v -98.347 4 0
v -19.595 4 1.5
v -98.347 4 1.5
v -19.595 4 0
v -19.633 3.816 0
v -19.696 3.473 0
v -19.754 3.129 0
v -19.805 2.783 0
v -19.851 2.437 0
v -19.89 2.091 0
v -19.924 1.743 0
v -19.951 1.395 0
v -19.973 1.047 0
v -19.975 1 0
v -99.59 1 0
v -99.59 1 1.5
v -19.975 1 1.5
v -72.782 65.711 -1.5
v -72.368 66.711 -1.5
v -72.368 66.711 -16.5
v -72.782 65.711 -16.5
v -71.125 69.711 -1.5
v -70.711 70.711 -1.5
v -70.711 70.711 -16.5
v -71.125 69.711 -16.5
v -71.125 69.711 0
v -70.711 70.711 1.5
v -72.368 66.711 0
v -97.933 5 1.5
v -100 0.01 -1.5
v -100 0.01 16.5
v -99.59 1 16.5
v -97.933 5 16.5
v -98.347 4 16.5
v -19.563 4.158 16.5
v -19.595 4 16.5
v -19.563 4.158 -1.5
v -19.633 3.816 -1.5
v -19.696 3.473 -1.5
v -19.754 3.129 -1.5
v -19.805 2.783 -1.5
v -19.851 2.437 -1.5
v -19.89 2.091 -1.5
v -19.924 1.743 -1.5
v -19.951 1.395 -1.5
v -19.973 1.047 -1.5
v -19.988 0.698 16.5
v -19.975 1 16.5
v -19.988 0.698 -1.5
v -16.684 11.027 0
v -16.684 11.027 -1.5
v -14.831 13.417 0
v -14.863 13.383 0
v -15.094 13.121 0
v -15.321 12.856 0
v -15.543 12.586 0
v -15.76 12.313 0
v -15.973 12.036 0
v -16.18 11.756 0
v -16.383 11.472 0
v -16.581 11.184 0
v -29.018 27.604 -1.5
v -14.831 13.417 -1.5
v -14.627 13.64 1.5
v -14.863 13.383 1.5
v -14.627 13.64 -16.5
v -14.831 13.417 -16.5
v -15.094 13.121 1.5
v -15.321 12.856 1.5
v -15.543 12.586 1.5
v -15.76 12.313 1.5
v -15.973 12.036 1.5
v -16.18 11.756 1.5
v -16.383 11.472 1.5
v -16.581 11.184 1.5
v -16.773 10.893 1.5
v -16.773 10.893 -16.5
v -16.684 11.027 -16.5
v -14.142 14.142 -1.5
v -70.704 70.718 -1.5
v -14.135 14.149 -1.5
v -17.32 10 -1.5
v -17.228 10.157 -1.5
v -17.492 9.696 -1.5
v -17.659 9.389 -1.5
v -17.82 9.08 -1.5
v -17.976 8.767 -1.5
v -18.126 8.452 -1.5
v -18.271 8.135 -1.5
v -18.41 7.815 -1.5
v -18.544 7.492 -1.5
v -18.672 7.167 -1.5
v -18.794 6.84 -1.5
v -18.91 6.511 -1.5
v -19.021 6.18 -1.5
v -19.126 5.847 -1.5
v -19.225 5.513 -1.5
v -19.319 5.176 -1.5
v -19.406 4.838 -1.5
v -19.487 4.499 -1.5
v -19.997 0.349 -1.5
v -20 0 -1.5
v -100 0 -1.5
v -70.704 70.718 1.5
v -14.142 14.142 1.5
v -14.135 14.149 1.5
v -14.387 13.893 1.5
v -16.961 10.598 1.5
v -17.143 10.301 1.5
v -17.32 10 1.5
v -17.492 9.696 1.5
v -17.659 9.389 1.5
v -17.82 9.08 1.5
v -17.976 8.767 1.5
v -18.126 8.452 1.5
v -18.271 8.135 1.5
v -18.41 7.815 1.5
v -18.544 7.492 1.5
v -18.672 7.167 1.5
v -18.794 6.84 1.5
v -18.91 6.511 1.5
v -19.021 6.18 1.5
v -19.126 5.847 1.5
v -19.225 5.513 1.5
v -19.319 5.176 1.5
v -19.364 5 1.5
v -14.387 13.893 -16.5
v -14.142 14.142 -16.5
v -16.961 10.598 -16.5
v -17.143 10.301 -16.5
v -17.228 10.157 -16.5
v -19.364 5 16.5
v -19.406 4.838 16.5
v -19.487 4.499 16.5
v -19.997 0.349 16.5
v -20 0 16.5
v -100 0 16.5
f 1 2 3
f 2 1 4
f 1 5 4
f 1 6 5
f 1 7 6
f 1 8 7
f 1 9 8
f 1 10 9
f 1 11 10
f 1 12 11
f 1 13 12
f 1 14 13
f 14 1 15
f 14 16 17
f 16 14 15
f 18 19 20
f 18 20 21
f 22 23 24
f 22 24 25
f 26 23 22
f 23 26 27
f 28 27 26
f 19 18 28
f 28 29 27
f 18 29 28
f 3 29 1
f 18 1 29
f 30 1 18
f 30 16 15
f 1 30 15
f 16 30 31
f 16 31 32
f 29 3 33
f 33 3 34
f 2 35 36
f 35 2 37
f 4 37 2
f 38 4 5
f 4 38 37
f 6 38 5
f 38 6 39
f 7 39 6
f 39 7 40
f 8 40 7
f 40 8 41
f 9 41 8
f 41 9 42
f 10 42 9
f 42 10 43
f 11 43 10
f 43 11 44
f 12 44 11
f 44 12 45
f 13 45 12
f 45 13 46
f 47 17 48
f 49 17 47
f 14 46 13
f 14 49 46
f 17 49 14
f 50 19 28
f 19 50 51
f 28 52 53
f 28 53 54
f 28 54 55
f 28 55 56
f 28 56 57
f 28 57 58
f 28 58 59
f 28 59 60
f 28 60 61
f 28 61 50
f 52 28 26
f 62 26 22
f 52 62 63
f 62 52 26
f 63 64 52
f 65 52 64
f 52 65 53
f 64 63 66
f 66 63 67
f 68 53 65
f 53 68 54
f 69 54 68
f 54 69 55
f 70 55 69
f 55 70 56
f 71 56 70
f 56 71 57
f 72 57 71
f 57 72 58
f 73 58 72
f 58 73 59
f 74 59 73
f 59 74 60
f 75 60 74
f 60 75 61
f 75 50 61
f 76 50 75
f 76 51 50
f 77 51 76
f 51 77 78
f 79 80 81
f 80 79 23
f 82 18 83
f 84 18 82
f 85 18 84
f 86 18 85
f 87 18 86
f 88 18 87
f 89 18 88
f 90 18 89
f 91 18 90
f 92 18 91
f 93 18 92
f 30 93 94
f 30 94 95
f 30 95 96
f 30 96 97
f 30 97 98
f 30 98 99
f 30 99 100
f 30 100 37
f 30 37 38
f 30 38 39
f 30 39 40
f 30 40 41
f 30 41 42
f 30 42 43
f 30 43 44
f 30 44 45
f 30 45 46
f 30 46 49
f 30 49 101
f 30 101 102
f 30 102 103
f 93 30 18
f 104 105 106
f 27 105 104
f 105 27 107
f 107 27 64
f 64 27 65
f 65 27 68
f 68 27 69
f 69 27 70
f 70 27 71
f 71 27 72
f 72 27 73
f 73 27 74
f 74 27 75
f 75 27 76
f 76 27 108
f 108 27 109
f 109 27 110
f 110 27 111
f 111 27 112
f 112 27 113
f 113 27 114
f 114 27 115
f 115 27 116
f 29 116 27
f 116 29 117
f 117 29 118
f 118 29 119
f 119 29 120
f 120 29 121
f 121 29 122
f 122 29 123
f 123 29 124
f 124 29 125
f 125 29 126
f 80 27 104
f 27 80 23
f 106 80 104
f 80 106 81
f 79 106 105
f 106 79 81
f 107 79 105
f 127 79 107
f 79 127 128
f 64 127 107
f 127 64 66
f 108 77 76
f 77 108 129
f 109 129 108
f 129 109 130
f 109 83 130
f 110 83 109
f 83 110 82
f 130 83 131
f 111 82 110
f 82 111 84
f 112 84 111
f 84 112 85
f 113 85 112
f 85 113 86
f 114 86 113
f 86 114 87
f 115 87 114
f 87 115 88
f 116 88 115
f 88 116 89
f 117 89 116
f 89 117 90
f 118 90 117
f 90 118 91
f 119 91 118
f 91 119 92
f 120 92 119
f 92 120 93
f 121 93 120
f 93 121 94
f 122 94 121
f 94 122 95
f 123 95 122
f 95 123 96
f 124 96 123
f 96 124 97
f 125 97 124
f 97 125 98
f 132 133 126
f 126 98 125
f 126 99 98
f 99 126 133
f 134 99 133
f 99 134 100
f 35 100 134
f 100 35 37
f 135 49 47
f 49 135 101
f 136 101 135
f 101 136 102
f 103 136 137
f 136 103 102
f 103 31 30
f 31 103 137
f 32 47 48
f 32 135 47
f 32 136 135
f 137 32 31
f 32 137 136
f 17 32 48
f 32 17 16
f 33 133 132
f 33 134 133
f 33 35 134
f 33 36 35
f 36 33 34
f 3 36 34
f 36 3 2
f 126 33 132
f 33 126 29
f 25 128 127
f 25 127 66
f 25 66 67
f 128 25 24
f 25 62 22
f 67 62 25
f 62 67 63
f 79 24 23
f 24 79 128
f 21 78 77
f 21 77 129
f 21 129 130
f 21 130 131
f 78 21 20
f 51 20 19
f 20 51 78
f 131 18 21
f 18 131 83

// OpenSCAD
// file: wall.scad
$fa = 1;
$fs = 0.1;

OPENING_ANGLE = 45;
HEIGHT = 100;
GRIP_SIZE = 15;
THICKNESS = 3;
CARDBOARD_THICKNESS = 3;

wall();

module wall() {
  difference() {
    translate([0, 0, -THICKNESS/2])
    linear_extrude(THICKNESS)
    side();

    each_edge() {
      knockout();
    }
  }

  each_edge() {
    grip();
  }
}

module side() {
  difference() {
    hull() {
      square([HEIGHT, 0.01]);

      rotate(OPENING_ANGLE)
      square([HEIGHT, 0.01]);
    }

    circle(r=HEIGHT/5);
  }
}

module grip() {
  translate([0, 0, THICKNESS/2])
  union() {
    cube([HEIGHT, 1, GRIP_SIZE]);

    translate([0, CARDBOARD_THICKNESS+1, 0])
    cube([HEIGHT, 1, GRIP_SIZE]);
  }
}

module knockout() {
  translate([0, 1, 0])
  cube([HEIGHT, CARDBOARD_THICKNESS, THICKNESS/2 + 0.01]);
}

module bound() {
  intersection() {
    children();

    translate([0, 0, -50])
    linear_extrude(100)
    side();
  }
}

module each_edge() {
  bound() {
    children();
  }

  bound() {
    rotate(45)
    rotate([180, 0, 0])
    children();
  }
}
/*
function top_len() = sqrt(2*HEIGHT*HEIGHT - 2*HEIGHT*HEIGHT*cos(OPENING_ANGLE));

function top_angle() = asin(HEIGHT * sin(OPENING_ANGLE) / top_len()); */
// main file
$fa = 1;
$fs = 0.1;

use <wall.scad>;

mirror([1, 0, 0])
wall();
